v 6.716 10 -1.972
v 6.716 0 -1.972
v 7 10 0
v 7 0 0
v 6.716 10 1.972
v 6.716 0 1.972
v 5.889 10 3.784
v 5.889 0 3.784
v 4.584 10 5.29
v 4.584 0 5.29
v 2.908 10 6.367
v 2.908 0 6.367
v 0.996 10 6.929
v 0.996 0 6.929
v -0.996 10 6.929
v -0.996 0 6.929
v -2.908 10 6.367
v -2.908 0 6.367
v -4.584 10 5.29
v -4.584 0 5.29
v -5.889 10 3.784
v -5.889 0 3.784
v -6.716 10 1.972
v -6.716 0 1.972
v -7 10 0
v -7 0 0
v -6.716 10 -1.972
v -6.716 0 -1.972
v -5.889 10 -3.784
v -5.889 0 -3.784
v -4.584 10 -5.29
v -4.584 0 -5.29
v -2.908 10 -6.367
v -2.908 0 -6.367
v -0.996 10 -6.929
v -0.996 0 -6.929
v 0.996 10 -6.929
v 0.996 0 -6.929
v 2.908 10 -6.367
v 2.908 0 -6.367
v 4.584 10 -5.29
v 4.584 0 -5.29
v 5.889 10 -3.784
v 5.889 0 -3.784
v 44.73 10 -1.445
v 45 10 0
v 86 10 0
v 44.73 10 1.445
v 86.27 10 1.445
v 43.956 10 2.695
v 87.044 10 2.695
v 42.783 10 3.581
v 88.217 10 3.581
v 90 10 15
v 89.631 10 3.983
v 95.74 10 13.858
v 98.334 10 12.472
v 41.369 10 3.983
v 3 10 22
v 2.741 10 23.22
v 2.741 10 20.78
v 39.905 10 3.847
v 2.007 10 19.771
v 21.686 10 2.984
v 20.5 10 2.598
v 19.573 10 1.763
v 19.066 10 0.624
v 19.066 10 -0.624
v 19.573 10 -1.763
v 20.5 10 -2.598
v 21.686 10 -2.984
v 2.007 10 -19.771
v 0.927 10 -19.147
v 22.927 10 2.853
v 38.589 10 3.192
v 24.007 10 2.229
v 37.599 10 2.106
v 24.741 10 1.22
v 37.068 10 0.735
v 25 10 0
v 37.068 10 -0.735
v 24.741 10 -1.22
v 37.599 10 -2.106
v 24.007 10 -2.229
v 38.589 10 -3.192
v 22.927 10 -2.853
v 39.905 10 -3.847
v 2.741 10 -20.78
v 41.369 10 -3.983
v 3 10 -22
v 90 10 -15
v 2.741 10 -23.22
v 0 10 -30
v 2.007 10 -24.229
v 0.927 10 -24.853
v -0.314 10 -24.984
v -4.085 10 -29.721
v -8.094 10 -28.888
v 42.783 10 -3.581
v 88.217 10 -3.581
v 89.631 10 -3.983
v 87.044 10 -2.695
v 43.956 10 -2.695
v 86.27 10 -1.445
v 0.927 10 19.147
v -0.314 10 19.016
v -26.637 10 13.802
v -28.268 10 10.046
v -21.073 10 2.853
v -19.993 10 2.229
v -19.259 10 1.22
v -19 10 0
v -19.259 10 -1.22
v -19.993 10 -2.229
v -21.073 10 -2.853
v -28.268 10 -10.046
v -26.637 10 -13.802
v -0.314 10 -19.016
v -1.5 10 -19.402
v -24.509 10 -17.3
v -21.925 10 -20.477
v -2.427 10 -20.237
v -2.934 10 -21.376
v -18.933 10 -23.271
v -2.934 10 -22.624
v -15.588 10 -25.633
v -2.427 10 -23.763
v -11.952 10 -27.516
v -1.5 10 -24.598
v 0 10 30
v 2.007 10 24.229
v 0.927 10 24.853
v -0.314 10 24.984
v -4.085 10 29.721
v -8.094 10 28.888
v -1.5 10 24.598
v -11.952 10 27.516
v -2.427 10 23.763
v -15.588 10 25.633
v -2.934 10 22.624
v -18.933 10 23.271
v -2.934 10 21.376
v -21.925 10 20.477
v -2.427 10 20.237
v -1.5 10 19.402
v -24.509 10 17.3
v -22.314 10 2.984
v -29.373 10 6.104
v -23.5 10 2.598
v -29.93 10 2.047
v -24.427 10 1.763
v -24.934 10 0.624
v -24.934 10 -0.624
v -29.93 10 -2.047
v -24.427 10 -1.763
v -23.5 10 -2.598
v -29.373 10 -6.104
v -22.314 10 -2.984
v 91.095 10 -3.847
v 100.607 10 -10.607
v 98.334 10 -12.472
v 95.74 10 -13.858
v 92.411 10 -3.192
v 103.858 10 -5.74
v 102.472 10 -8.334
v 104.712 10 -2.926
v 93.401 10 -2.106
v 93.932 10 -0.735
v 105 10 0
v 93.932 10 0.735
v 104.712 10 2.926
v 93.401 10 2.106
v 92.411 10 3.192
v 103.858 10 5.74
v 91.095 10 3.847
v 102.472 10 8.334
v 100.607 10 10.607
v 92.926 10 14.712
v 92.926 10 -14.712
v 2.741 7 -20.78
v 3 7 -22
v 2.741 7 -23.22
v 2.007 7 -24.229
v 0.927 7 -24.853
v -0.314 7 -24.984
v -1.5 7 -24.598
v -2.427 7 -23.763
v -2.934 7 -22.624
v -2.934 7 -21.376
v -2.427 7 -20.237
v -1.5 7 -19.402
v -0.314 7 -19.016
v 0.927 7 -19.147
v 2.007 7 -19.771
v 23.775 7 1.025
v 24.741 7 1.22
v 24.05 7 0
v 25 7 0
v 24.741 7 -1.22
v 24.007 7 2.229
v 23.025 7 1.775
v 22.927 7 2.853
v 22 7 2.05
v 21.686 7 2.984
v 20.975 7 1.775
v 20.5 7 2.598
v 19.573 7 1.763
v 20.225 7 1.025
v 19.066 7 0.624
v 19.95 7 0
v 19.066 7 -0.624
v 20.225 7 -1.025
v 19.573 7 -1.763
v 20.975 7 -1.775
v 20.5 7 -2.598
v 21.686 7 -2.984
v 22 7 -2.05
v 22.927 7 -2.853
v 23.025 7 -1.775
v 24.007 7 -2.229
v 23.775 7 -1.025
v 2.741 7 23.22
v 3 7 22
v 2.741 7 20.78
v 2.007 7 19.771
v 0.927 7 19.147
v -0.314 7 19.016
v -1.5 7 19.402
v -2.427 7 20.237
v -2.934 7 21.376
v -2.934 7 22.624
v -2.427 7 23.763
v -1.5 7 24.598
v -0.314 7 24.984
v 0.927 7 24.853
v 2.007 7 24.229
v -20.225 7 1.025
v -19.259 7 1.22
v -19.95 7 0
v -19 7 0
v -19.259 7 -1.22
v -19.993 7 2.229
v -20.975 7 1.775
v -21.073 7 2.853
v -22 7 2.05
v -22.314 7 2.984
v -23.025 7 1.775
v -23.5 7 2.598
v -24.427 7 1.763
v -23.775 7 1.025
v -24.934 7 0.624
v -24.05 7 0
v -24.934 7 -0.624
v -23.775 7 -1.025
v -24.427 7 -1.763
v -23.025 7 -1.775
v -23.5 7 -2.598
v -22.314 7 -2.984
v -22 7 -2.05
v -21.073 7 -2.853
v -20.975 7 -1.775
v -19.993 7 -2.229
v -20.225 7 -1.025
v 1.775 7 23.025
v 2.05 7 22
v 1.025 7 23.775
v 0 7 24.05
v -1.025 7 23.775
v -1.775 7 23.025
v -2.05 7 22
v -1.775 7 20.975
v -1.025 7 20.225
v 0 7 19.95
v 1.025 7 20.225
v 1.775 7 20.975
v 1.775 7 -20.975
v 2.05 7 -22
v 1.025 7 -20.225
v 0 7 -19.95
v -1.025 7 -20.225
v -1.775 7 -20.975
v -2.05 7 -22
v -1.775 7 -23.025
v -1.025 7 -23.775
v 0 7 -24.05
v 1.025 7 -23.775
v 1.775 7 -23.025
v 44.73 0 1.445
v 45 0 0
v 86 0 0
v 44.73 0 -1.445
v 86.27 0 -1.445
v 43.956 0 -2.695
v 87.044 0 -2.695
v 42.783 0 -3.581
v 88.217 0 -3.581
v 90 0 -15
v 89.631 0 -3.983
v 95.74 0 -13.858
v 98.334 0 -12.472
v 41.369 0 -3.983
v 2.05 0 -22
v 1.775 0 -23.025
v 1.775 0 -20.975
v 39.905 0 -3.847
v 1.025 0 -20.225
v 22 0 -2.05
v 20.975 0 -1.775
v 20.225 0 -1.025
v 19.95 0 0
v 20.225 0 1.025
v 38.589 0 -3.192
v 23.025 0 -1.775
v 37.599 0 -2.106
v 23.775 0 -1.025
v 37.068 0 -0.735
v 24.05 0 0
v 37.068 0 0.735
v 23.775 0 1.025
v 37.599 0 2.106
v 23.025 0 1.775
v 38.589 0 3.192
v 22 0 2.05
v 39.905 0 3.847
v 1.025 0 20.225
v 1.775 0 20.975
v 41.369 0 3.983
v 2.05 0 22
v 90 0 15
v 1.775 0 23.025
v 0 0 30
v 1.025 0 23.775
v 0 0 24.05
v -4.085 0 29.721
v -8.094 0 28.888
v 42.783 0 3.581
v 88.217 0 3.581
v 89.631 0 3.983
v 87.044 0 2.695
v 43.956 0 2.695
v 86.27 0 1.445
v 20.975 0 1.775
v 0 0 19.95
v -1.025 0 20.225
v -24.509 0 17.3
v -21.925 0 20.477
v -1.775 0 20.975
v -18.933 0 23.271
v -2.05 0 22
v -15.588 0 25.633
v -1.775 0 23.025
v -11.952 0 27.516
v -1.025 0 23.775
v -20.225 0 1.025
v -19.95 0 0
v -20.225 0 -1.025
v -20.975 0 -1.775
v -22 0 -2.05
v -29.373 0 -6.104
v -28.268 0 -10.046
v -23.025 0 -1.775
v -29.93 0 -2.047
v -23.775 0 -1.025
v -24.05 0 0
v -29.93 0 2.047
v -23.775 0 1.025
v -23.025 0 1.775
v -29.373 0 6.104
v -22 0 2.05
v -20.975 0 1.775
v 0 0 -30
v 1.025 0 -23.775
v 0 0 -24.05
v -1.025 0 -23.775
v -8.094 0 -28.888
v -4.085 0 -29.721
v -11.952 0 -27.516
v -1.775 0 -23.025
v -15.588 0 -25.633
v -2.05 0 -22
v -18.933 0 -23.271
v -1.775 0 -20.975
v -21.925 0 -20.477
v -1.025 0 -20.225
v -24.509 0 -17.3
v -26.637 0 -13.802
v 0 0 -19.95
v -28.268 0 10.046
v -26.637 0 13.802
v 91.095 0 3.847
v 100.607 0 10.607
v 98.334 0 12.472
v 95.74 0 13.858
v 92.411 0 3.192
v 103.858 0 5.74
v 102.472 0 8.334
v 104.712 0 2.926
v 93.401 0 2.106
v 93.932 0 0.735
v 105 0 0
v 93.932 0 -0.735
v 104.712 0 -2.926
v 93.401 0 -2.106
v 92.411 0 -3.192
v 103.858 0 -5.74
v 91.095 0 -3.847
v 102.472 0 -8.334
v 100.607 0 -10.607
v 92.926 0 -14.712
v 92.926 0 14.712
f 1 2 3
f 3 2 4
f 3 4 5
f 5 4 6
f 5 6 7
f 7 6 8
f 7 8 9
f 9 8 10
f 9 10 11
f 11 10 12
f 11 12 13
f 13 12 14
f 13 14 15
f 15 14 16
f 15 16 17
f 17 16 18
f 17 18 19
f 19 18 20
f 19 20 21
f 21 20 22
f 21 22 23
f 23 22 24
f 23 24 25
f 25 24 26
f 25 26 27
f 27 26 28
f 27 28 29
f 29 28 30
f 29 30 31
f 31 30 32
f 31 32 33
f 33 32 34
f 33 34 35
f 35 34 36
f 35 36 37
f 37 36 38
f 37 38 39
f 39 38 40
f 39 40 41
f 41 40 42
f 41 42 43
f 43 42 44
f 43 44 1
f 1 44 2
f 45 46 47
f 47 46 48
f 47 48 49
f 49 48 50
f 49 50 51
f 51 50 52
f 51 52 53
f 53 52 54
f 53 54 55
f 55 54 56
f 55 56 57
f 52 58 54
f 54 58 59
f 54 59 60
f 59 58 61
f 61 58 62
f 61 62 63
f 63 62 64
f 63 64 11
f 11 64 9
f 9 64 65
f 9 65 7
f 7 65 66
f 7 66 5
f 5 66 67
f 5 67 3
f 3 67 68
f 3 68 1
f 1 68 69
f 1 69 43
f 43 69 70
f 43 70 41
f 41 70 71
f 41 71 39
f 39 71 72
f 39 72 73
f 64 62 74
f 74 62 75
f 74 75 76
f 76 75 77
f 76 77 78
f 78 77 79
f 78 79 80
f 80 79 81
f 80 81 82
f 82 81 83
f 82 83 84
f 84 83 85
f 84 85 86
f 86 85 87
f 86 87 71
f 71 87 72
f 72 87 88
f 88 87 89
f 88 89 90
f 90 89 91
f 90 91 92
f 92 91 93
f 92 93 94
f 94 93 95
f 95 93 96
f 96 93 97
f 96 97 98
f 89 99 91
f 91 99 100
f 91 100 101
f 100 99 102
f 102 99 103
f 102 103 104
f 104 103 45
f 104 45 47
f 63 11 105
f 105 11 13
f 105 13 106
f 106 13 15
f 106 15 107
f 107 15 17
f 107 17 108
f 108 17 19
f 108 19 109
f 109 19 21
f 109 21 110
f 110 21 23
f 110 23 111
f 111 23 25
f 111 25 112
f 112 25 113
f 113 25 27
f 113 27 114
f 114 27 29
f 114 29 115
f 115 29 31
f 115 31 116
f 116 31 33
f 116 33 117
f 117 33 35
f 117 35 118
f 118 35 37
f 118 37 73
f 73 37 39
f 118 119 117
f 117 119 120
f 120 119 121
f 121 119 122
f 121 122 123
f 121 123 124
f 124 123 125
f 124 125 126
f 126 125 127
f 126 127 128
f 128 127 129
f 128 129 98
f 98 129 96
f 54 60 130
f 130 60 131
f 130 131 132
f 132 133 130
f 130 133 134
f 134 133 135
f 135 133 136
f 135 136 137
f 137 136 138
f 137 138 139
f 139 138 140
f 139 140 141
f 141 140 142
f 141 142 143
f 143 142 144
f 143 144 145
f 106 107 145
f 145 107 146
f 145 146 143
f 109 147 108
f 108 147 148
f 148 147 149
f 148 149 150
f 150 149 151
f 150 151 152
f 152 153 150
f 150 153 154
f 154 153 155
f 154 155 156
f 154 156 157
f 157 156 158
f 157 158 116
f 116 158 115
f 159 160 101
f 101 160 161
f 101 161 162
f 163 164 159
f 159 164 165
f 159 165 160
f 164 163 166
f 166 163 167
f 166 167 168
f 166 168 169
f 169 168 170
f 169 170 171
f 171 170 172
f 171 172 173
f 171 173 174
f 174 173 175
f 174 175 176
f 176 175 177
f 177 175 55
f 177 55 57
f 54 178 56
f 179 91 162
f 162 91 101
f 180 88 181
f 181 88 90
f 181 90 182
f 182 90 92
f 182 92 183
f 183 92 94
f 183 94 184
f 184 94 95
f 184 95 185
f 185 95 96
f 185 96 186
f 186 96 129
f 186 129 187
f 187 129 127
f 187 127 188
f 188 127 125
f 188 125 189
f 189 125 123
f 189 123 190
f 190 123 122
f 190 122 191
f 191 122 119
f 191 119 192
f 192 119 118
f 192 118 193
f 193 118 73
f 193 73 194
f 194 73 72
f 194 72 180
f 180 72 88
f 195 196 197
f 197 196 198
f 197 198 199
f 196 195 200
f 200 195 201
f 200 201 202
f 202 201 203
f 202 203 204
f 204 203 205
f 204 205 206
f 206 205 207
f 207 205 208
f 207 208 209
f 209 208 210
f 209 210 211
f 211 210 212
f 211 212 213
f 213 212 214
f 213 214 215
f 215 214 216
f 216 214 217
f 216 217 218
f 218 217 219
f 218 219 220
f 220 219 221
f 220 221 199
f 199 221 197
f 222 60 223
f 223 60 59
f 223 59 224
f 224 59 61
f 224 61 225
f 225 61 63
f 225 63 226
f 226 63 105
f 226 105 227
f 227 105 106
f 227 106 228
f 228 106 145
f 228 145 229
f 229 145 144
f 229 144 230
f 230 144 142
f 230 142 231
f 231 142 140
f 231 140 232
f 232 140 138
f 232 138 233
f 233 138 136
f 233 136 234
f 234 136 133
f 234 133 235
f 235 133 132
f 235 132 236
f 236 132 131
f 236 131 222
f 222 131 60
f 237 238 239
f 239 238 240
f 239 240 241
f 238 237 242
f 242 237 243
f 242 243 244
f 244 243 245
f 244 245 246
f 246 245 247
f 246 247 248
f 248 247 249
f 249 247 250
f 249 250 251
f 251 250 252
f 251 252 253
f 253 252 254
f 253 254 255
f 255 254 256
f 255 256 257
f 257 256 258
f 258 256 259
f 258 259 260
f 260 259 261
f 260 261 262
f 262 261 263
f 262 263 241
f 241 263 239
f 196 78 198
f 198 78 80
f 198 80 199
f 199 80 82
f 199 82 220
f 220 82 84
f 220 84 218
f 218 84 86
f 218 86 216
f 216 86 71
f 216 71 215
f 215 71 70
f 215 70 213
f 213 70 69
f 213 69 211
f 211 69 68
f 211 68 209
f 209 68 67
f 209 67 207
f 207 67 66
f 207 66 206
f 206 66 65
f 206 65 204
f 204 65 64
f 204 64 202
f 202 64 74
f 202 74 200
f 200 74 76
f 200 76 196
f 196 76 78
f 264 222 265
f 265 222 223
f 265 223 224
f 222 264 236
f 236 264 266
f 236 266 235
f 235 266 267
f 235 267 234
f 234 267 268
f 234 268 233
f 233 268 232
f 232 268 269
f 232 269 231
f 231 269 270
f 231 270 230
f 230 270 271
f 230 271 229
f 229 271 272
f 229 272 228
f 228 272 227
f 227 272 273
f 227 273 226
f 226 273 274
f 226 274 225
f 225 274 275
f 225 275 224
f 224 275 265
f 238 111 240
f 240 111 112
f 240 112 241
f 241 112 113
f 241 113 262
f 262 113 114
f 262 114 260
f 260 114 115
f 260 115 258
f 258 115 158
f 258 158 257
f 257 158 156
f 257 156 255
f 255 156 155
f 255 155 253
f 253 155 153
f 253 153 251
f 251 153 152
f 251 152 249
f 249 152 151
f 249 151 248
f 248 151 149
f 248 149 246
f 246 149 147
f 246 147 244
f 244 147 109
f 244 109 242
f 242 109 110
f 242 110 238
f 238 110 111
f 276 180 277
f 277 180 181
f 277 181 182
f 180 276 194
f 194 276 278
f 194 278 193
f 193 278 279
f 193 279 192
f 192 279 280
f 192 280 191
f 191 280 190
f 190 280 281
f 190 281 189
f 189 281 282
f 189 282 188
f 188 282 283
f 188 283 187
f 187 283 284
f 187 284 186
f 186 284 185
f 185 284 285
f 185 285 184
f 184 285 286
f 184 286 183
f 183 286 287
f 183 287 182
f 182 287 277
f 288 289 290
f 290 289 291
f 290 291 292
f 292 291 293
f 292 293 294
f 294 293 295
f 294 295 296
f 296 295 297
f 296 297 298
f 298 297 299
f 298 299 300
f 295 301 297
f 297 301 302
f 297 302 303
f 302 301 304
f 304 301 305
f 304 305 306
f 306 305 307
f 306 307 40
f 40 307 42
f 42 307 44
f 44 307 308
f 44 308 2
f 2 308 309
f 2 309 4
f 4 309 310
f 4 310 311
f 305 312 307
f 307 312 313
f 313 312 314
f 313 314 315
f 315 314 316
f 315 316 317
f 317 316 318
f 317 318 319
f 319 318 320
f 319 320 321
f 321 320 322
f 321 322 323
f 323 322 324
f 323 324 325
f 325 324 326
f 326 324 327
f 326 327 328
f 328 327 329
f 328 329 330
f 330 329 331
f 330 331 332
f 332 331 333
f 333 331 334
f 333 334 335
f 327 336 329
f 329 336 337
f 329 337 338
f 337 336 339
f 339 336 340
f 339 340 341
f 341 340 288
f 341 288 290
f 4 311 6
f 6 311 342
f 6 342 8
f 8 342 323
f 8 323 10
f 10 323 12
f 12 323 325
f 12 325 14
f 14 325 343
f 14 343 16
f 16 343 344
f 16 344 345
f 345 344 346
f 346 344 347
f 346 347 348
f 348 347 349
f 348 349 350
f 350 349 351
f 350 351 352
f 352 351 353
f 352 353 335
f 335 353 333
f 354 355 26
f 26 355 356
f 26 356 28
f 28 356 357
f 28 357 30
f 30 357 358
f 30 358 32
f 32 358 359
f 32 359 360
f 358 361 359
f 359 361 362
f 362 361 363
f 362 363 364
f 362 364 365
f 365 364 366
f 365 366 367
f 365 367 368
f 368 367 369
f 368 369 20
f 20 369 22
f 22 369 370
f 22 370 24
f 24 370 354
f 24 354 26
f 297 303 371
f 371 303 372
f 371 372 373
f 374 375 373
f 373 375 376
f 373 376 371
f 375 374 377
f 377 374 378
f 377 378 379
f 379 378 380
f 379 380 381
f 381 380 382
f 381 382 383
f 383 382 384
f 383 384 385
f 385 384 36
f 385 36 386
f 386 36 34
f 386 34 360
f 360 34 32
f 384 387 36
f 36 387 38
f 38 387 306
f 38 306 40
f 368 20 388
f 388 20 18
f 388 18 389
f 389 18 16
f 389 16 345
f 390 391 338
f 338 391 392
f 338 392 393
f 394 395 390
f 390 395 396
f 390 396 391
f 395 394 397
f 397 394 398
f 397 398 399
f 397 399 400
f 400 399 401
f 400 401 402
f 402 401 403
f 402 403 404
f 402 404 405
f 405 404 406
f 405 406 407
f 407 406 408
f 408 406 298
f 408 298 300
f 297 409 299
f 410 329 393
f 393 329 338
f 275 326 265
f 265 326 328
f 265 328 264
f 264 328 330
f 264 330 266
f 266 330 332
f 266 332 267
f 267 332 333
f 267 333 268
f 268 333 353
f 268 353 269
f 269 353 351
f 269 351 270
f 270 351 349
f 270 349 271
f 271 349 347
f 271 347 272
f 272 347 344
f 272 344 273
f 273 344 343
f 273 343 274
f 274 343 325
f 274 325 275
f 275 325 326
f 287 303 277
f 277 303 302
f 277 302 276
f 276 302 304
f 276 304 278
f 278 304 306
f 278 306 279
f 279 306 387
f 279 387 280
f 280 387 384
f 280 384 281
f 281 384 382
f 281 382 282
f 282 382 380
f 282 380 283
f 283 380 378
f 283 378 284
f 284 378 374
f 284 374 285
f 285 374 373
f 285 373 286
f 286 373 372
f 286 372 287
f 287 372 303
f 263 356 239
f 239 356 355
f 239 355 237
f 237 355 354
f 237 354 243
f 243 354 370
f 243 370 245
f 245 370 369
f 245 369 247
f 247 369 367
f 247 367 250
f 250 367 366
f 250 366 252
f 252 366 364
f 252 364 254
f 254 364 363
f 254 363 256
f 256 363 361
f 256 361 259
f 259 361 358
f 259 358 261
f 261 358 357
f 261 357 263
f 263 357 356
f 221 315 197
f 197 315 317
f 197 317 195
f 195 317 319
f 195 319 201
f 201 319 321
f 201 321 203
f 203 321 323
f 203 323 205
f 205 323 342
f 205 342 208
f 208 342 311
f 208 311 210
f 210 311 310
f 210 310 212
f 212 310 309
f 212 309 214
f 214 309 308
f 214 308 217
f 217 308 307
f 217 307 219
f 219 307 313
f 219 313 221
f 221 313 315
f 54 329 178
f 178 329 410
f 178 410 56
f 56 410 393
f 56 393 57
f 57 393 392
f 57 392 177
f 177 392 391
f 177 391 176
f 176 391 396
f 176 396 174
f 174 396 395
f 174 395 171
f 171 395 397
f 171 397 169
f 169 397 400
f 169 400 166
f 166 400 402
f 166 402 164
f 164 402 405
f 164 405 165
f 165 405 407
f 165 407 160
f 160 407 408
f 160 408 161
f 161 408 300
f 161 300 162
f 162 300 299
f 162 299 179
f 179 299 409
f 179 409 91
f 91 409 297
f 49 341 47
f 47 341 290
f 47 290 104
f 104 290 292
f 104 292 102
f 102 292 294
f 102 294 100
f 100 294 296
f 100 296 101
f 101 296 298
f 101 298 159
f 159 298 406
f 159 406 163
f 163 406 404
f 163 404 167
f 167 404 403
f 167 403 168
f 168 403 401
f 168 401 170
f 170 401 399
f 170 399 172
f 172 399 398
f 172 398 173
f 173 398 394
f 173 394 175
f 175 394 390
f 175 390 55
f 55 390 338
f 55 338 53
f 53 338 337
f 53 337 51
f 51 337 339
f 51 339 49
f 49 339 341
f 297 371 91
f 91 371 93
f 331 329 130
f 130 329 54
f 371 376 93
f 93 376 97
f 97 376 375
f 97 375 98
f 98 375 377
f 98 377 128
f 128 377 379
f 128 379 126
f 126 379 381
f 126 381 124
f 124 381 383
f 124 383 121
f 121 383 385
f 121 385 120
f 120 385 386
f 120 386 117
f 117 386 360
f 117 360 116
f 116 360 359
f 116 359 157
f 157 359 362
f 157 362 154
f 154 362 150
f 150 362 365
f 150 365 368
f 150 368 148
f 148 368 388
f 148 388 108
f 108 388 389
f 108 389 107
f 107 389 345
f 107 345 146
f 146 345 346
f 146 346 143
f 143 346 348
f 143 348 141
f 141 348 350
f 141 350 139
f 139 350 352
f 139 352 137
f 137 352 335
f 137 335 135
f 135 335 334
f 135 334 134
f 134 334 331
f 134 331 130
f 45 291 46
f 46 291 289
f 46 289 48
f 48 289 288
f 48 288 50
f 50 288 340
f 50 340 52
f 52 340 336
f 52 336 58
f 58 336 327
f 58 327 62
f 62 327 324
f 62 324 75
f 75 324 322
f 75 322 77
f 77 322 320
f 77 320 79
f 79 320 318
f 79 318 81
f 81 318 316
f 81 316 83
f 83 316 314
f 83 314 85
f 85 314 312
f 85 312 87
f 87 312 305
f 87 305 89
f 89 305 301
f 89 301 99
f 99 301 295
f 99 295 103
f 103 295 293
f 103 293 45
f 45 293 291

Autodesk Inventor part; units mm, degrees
ref_plane "YZ Plane" through (0, 0, 0) normal (1, 0, 0) x (0, 1, 0)
ref_plane "XZ Plane" through (0, 0, 0) normal (0, 1, 0) x (-1, 0, 0)
ref_plane "XY Plane" through (0, 0, 0) normal (0, 0, 1) x (1, 0, 0)
sketch "Sketch1" plane through (0, 0, 0) normal (0, 1, 0) x (-1, 0, 0)
  circle A0 centre (0, 0) radius 22
  line L0 (0, 0) -> (0, -22)
  circle A1 centre (0, -22) radius 1.55
  circle A2 centre (0, -22) radius 3
  circle A3 centre (22, 0) radius 3
  circle A4 centre (22, 0) radius 1.55
  circle A5 centre (0, 22) radius 3
  circle A6 centre (0, 22) radius 1.55
  circle A7 centre (-22, 0) radius 3
  circle A8 centre (-22, 0) radius 1.55
  circle A9 centre (0, 0) radius 30
  line L1 (0, 0) -> (-90, 0)
  circle A10 centre (-90, 0) radius 4
  circle A11 centre (-90, 0) radius 15
  line L2 (0, -30) -> (-90, -15)
  line L3 (0, 30) -> (-90, 15)
  circle A12 centre (0, 0) radius 5
  dimension "d0" = 44
  dimension "d1" = 3.1
  dimension "d2" = 6
  dimension "d5" = 360
  dimension "d7" = 60
  dimension "d8" = 90
  dimension "d9" = 8
  dimension "d10" = 30
  dimension "d11" = 10
extrude "Extrusion1" add sketch "Sketch1" along normal blind 10 contours A0 A4 | A0 A4 | A4 A0 A3 | A0 A3 A4 | A3 A0 A2 L0 A12 L1 A7 A5 | A9 L3 L2 | A9 L2 A11 L1 | L1 A11 L3 A9 | A5 A0 A6 | A0 A6 A5 | A2 A0 A1 | A0 A1 L0 A2 | A6 A0 | A0 A6 | A1 A0 | A0 L0 A1 | A2 A0 A7 L1 A12 L0 | L0 A1 A0 A2 | A7 L1 A8 A0 | A0 A8 L1 A7 | A0 A1 L0 | A12 L1 L0 | L0 L1 A12 | A8 L1 A0 | A0 L1 A8 | A7 A0 A8 L1 | L1 A8 A0 A7 | L1 A8 A0 | A0 A8 L1 | A11
sketch "Sketch2" plane through (0, 0, 0) normal (0, -1, 0) x (1, 0, 0)
  circle A0 centre (0, 22) radius 1.5
  circle A1 centre (0, -22) radius 1.5
  circle A2 centre (22, 0) radius 1.5
  circle A3 centre (-22, 0) radius 1.5
  circle A4 centre (0, 22) radius 2.05
  circle A5 centre (22, 0) radius 2.05
  circle A6 centre (-22, 0) radius 2.05
  circle A7 centre (0, -22) radius 2.05
  circle A8 centre (-22, 0) radius 2.05
  circle A9 centre (0, 22) radius 2.05
  circle A10 centre (22, 0) radius 2.05
  circle A11 centre (0, -22) radius 2.05
  point P0 (0, 0)
  dimension "d16" = 3
  dimension "d17" = 3
  dimension "d19" = 3
  dimension "d21" = 3
  dimension "d34" = 4.1
  dimension "d35" = 4.1
  dimension "d36" = 4.1
  dimension "d37" = 4.1
  dimension "d38" = 4.1
  dimension "d39" = 4.1
  dimension "d40" = 4.1
  dimension "d41" = 4.1
extrude "Extrusion2" cut sketch "Sketch2" against normal blind 10 contours A0 | A1 | A2 | A3
sketch "Sketch3" plane through (0, 10, 0) normal (0, 1, 0) x (1, 0, 0)
  circle A0 centre (0, -22) radius 1.5 projected
  line L0 (0, 0) -> (0, -22)
  circle A1 centre (-22, 0) radius 1.5 projected
  line L1 (0, 0) -> (-22, 0)
  circle A2 centre (0, 22) radius 1.5 projected
  line L2 (0, 0) -> (0, 22)
  circle A3 centre (22, 0) radius 1.5 projected
  line L3 (0, 0) -> (22, 0)
  circle A4 centre (0, -22) radius 3
  circle A5 centre (22, 0) radius 3
  circle A6 centre (0, 22) radius 3
  circle A7 centre (-22, 0) radius 3
  dimension "d24" = 6
  dimension "d27" = 360
extrude "Extrusion3" cut sketch "Sketch3" against normal blind 3
sketch "Sketch4" plane through (0, 0, 0) normal (0, -1, 0) x (1, 0, 0)
  circle A0 centre (0, 0) radius 5 projected
  circle A1 centre (0, 0) radius 7
  point P0 (0, 0)
  dimension "d31" = 14
extrude "Extrusion4" cut sketch "Sketch4" against normal blind 2.5
ref_plane "Work Plane1" through (0, 0, 0) normal (0, -1, 0) x (1, 0, 0)
sketch "Sketch5" plane through (0, 0, 0) normal (0, -1, 0) x (1, 0, 0)
  circle A0 centre (0, 22) radius 1.5 projected
  circle A1 centre (0, 22) radius 2.05
  circle A2 centre (-22, 0) radius 2.05
  circle A3 centre (0, -22) radius 2.05
  circle A4 centre (22, 0) radius 2.05
  point P0 (0, 0)
  dimension "d43" = 4.1
  dimension "d46" = 360
extrude "Extrusion5" cut sketch "Sketch5" against normal blind 10
sketch "Sketch6" plane through (0, 0, 0) normal (0, -1, 0) x (1, 0, 0)
  circle A0 centre (0, 0) radius 7
extrude "Extrusion6" cut sketch "Sketch6" against normal blind 70.5
sketch "Sketch7" plane through (0, 0, 0) normal (0, -1, 0) x (1, 0, 0)
  circle A0 centre (90, 0) radius 4 projected
  circle A1 centre (41, 0) radius 4
  point P0 (0, 0)
  dimension "d53" = 8
extrude "Extrusion7" cut sketch "Sketch7" against normal blind 29.5 contours A1
properties part number "motormount"
